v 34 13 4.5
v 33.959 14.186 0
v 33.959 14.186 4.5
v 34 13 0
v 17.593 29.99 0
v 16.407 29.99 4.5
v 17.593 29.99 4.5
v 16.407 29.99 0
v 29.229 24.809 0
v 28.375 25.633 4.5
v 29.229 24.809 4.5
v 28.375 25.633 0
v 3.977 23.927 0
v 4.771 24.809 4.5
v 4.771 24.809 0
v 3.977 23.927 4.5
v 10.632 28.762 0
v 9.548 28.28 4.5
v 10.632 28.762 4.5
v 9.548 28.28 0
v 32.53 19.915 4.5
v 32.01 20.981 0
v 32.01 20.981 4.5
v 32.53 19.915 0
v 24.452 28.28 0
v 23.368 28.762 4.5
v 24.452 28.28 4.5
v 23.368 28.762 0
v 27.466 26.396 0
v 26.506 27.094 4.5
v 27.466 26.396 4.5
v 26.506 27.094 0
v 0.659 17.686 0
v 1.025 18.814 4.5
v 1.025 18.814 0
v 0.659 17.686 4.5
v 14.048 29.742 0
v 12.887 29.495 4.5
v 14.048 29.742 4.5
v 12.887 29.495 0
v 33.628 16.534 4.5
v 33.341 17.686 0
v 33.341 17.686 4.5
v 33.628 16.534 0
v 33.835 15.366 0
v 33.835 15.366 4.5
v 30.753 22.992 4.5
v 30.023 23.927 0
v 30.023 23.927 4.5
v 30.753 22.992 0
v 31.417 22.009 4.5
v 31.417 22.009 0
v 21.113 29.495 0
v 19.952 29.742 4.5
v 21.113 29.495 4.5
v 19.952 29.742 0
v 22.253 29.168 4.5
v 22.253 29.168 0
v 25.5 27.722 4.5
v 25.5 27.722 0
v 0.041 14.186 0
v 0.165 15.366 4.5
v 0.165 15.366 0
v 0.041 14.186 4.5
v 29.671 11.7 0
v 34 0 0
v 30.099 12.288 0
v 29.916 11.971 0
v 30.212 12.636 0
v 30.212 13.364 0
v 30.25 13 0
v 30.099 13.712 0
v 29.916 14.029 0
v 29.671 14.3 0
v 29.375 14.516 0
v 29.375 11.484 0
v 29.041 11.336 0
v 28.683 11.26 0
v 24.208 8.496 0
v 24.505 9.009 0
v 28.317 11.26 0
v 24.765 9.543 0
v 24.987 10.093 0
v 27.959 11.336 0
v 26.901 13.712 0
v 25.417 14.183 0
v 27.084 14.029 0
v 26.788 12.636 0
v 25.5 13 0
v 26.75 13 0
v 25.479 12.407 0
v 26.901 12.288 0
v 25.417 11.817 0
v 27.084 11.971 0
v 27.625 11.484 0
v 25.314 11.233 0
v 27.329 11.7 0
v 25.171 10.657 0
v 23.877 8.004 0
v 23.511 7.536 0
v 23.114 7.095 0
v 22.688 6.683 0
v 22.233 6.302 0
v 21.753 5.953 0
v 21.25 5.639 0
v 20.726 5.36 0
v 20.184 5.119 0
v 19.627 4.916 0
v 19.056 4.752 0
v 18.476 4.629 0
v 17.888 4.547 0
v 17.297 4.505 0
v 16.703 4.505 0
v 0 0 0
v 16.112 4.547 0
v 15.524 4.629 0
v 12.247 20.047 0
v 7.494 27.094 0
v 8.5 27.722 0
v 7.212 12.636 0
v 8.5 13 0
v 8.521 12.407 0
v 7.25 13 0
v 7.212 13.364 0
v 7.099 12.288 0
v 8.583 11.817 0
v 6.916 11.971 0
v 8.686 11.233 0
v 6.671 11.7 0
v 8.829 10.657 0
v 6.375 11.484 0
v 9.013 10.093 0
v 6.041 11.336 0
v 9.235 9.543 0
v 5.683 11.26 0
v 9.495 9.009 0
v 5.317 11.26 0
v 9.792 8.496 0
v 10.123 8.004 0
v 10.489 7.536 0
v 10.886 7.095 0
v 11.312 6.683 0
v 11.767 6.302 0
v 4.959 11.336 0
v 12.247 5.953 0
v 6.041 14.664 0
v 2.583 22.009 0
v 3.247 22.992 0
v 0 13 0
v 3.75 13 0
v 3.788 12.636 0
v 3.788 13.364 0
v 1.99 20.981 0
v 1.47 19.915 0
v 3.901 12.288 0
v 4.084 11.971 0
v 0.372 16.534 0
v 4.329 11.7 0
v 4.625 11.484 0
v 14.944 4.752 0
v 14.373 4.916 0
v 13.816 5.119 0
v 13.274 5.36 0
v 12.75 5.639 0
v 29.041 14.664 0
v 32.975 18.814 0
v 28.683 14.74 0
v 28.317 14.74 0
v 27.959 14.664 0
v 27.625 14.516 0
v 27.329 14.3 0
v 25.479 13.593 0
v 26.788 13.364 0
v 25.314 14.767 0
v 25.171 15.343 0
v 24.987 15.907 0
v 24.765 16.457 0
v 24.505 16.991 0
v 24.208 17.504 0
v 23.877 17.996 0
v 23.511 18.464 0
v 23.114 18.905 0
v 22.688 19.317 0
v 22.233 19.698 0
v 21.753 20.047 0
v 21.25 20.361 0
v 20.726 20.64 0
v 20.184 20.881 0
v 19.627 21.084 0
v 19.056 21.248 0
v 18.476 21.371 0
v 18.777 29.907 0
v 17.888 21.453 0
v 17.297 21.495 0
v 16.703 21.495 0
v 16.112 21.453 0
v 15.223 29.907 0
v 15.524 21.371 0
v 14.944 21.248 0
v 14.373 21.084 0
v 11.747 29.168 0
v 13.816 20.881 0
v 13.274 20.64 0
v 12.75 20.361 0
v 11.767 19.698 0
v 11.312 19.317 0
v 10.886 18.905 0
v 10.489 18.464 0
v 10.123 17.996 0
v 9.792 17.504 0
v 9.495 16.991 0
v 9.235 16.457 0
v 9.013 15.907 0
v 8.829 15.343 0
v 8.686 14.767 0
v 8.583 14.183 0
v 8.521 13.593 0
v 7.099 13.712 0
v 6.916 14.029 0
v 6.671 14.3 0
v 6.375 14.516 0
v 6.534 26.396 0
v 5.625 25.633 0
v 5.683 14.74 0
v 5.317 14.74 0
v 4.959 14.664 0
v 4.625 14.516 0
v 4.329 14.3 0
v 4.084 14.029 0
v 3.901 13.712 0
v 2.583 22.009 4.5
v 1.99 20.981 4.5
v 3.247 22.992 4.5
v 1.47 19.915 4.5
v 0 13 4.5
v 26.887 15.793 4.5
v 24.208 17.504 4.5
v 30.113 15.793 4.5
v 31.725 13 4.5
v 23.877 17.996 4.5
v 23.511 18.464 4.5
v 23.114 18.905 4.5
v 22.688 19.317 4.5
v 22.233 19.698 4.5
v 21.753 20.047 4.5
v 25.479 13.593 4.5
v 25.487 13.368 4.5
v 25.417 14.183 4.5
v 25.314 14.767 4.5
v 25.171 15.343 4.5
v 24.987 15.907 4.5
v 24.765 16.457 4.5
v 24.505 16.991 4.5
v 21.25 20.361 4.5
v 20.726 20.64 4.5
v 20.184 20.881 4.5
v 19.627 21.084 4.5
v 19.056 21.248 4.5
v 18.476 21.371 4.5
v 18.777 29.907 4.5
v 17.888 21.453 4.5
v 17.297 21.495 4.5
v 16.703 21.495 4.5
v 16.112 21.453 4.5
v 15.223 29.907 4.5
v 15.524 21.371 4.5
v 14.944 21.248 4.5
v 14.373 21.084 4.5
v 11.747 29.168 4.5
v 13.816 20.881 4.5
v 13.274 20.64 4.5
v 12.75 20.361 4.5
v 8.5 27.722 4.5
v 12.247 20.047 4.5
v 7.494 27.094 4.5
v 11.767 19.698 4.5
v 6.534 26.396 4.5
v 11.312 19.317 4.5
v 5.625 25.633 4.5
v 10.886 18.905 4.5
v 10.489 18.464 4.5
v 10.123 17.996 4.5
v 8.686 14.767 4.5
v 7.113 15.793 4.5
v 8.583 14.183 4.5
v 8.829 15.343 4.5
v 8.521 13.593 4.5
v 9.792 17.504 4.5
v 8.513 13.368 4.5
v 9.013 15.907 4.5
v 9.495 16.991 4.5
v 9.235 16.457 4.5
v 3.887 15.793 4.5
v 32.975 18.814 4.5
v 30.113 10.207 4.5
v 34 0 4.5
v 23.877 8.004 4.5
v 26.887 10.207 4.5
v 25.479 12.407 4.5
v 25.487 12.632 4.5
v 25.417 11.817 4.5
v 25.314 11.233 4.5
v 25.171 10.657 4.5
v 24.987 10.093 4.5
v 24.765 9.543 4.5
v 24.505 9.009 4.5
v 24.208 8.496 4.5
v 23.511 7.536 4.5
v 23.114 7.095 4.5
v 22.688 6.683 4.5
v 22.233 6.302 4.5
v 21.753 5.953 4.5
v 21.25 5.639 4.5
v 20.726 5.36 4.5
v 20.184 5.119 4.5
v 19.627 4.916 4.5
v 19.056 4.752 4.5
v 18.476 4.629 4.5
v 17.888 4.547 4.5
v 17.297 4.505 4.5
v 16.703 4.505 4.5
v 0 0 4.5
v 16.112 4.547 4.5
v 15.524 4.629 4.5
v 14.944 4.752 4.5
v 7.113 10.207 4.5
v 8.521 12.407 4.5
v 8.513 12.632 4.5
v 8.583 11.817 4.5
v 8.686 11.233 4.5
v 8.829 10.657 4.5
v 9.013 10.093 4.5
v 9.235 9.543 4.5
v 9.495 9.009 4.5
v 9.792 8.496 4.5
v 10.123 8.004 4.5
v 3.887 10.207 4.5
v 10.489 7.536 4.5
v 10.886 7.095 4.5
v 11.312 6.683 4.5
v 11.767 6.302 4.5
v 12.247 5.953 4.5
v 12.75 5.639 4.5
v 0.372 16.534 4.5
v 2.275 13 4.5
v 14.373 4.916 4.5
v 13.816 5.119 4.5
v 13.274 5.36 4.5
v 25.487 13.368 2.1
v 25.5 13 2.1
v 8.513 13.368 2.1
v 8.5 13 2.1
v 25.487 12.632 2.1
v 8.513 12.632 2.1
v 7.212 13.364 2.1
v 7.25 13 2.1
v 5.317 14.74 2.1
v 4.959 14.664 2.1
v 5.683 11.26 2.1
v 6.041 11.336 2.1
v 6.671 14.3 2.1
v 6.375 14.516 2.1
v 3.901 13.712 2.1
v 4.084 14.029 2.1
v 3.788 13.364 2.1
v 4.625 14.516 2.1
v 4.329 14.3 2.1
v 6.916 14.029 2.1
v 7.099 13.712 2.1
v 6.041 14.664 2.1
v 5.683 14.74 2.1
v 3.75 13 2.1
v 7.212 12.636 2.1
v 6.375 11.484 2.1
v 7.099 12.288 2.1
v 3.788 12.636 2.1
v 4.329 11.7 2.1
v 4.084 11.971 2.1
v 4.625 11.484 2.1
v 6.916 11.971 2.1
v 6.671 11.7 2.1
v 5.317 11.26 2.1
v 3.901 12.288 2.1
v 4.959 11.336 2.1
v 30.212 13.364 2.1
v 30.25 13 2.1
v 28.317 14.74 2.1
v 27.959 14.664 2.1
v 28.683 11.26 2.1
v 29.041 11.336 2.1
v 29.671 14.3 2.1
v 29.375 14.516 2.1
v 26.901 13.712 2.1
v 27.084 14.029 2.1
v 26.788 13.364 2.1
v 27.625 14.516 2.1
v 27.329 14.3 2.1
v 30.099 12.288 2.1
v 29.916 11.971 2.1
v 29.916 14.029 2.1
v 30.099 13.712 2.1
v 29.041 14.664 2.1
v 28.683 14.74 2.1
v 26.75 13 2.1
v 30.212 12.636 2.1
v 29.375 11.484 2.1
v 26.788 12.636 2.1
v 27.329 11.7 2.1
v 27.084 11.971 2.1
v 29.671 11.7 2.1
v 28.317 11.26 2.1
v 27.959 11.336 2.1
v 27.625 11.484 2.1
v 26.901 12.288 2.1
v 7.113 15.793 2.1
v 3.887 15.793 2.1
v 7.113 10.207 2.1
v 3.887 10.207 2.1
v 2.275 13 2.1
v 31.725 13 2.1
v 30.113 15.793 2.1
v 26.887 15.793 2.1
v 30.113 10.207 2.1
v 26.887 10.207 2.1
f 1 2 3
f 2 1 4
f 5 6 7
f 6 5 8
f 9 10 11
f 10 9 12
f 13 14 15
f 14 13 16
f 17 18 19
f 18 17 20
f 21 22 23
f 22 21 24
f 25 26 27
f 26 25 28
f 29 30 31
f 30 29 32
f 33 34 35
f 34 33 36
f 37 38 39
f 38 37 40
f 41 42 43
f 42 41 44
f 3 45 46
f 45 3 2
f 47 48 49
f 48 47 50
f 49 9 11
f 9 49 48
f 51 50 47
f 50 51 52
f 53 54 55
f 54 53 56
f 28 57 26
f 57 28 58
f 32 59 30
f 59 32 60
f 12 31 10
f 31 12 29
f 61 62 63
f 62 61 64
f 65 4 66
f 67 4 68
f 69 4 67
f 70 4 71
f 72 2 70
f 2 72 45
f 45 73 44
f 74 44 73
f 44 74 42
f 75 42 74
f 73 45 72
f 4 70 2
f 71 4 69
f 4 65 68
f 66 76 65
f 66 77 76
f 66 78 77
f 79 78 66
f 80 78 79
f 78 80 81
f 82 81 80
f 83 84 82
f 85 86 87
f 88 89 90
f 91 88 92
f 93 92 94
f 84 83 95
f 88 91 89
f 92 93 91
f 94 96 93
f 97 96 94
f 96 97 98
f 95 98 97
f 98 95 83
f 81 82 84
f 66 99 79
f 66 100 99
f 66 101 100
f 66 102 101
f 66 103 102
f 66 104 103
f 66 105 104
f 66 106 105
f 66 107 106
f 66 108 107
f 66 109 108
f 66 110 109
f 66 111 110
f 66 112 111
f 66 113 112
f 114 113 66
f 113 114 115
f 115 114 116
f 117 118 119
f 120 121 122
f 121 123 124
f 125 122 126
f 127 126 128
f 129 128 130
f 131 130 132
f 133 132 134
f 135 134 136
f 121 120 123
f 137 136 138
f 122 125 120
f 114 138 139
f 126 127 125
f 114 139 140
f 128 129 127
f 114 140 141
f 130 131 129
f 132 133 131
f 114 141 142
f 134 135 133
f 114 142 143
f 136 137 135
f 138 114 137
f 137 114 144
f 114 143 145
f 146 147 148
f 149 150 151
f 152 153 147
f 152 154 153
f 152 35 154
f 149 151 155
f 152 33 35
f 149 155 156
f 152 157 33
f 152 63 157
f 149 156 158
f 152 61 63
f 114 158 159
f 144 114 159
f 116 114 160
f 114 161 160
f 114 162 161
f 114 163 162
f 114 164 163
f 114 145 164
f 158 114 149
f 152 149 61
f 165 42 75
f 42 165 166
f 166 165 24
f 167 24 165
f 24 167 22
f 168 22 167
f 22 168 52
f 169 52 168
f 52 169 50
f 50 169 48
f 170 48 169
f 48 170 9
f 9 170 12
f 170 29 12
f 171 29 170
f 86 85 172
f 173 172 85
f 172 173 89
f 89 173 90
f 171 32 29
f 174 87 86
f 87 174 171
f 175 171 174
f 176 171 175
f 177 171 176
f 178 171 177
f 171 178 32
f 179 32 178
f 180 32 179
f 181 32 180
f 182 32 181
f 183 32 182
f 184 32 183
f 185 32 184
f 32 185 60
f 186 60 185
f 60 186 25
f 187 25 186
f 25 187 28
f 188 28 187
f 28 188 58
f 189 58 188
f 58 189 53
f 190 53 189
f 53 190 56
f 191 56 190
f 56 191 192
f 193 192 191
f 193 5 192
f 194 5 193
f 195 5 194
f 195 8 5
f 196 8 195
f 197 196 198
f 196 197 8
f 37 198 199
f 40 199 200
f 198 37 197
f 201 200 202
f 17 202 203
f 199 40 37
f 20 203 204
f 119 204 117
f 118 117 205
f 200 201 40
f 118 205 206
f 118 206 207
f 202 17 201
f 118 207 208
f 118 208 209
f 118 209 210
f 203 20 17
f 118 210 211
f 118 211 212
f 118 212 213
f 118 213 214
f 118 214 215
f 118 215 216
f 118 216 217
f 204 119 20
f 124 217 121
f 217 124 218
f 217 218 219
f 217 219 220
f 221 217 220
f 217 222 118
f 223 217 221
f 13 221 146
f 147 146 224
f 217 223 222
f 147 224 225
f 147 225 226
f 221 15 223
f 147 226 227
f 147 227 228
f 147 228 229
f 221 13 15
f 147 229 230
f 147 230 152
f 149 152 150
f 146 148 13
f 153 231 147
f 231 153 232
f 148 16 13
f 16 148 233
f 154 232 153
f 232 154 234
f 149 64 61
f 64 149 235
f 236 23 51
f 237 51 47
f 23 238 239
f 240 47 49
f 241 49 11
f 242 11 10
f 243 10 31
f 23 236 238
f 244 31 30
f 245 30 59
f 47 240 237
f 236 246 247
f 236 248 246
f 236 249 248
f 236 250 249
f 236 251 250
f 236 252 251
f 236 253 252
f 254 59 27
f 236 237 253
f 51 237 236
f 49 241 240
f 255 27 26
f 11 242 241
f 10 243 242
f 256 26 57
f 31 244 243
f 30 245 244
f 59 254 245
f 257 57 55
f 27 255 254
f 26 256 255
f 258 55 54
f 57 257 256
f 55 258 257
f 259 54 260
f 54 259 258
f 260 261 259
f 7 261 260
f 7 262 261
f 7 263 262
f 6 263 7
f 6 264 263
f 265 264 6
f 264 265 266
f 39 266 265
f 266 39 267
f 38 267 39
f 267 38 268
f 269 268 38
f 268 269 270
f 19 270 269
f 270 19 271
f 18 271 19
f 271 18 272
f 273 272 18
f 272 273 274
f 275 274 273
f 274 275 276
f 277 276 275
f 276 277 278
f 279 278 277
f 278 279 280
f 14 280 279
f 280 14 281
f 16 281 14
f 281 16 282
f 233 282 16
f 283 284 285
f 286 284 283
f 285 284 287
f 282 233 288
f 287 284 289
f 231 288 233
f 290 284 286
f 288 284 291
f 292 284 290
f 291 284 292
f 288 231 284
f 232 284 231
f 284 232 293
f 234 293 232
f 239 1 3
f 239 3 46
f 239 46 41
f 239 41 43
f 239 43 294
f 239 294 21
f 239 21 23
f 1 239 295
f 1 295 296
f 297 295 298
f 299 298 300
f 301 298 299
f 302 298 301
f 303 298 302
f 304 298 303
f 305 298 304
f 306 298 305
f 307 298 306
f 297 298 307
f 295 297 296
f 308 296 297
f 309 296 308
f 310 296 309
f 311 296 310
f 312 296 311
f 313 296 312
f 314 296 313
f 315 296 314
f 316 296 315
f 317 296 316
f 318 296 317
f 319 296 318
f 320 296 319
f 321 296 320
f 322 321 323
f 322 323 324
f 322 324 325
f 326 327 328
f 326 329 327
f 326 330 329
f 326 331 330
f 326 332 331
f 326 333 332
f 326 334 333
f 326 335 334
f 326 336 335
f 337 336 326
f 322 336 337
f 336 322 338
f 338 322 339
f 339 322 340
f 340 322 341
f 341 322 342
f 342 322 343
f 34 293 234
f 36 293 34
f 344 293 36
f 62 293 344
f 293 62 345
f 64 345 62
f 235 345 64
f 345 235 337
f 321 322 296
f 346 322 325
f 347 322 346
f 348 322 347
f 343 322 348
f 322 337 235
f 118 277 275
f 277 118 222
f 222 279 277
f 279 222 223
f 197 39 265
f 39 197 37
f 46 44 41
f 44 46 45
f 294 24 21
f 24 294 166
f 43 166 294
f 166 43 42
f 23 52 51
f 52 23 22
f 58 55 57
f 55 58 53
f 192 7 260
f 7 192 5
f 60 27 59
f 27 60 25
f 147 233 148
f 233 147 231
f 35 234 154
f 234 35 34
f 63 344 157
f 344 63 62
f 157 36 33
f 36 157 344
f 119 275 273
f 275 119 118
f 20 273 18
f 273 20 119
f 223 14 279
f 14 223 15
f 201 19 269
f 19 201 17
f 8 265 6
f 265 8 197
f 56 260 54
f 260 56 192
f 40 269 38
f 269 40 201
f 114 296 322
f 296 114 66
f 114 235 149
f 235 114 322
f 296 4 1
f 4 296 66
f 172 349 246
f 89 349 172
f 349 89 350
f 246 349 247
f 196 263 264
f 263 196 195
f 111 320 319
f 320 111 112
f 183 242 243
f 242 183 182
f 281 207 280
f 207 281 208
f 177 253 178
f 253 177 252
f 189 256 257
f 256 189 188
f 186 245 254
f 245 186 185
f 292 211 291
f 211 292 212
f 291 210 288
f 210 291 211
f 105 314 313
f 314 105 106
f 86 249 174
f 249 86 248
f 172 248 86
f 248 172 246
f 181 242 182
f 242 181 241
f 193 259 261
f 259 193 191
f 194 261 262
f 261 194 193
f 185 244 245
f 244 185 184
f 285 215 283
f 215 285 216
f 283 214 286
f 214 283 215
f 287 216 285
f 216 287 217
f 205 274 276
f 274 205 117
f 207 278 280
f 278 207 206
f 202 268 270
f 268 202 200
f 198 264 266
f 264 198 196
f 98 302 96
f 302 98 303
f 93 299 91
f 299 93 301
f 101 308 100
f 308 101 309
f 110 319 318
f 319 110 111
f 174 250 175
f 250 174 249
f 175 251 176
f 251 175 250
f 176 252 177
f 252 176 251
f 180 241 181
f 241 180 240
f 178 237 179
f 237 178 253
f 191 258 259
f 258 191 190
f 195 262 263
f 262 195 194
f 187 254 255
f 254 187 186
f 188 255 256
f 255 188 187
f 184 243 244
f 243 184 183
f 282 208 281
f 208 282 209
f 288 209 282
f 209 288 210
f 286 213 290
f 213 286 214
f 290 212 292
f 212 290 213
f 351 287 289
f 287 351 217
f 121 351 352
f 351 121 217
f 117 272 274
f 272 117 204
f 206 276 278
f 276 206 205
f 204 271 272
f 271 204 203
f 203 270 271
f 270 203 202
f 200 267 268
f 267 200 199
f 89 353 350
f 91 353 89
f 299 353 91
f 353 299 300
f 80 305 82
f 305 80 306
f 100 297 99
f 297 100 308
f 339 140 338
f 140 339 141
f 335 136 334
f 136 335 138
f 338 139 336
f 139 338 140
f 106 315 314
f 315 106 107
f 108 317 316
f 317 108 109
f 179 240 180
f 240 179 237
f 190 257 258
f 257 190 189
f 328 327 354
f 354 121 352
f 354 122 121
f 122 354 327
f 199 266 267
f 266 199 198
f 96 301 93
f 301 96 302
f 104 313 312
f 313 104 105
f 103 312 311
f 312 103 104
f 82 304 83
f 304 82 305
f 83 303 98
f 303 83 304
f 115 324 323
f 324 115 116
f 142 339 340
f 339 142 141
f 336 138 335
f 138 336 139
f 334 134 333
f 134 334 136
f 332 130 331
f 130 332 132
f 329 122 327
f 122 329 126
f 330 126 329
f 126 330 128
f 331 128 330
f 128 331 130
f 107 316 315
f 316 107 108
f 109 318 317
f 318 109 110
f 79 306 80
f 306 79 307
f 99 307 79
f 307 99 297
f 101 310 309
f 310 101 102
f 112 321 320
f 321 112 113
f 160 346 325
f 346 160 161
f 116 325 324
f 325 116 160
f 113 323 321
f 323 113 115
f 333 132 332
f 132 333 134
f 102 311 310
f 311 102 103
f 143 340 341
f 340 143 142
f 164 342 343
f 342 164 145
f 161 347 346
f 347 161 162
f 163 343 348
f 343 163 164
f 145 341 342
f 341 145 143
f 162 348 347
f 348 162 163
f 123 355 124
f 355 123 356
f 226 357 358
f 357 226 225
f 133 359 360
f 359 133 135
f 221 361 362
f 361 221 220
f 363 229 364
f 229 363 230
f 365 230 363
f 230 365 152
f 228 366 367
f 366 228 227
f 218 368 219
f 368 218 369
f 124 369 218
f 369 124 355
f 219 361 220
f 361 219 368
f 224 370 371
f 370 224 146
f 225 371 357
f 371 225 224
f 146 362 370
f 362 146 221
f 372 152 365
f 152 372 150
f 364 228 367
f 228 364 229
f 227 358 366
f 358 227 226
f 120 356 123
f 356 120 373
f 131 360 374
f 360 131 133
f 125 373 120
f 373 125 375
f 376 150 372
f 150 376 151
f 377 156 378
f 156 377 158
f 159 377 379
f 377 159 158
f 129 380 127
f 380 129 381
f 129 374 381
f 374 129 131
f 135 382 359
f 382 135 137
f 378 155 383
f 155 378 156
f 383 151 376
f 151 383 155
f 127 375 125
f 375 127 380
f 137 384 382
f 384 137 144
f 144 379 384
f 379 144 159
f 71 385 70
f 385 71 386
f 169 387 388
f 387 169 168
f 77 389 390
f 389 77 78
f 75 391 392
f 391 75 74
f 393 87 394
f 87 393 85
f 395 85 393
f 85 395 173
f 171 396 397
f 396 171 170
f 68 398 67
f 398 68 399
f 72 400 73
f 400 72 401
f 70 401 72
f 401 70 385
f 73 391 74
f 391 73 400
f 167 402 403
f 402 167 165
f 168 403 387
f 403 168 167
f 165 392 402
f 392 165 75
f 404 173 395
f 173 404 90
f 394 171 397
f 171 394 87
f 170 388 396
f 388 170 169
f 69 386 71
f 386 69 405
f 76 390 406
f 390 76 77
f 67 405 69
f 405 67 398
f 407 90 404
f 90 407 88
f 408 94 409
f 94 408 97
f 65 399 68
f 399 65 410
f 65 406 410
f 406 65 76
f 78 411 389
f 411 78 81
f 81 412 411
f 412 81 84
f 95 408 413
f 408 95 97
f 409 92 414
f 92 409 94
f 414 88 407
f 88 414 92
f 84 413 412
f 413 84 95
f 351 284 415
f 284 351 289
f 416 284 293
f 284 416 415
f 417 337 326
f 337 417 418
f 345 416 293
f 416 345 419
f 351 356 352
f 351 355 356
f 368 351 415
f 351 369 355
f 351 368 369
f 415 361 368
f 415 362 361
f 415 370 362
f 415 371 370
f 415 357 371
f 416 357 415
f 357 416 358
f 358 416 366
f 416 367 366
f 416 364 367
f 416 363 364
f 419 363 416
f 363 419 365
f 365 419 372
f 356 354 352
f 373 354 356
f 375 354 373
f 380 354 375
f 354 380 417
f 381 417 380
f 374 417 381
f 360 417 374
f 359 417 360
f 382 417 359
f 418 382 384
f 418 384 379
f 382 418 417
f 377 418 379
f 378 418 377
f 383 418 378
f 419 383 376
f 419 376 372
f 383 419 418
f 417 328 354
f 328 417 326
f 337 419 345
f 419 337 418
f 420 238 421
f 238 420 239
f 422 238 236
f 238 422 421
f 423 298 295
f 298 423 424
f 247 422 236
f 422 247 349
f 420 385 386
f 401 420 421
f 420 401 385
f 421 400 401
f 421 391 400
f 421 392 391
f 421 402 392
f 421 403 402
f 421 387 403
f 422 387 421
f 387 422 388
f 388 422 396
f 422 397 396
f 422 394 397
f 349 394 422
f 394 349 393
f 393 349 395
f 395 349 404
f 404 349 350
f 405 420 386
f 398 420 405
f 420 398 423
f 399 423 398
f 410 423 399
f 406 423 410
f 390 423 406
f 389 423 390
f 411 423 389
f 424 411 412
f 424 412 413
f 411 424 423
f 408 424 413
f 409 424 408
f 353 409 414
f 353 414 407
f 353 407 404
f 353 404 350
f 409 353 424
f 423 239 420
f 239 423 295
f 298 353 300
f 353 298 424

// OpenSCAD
// Project: BigBox v2
// Part:    z_axis_guide_top_lower (x4)
// Author:  Grigori Palamartšuk <grigori.palamarchuk@gmail.com>
// Source:  http://bigbox.lecktor.ee

module body()
{
    cube([34,13,4.5]);
    difference() {
        translate([17,13,0]) cylinder(h=4.5,r=17,$fn=90);
        translate([0,-4,0]) cube([34,4,4.5]);
    }
}

module holes()
{
    // central hole
    translate([17,13,0]) cylinder(h=4.5,r=8.5,$fn=90);
    
    // m3 screw holes
    translate([5.5,13,0]) cylinder(h=4.5,r=1.75,$fn=30);
    translate([28.5,13,0]) cylinder(h=4.5,r=1.75,$fn=30);
    
    // m3 nut trap (din934)
    translate([5.5,13,2.1]) cylinder(r=2.75/cos(30)+0.05,h=2.4,$fn=6);
    translate([28.5,13,2.1]) cylinder(r=2.75/cos(30)+0.05,h=2.4,$fn=6);
}

difference()
{
    body();
    holes();
}
